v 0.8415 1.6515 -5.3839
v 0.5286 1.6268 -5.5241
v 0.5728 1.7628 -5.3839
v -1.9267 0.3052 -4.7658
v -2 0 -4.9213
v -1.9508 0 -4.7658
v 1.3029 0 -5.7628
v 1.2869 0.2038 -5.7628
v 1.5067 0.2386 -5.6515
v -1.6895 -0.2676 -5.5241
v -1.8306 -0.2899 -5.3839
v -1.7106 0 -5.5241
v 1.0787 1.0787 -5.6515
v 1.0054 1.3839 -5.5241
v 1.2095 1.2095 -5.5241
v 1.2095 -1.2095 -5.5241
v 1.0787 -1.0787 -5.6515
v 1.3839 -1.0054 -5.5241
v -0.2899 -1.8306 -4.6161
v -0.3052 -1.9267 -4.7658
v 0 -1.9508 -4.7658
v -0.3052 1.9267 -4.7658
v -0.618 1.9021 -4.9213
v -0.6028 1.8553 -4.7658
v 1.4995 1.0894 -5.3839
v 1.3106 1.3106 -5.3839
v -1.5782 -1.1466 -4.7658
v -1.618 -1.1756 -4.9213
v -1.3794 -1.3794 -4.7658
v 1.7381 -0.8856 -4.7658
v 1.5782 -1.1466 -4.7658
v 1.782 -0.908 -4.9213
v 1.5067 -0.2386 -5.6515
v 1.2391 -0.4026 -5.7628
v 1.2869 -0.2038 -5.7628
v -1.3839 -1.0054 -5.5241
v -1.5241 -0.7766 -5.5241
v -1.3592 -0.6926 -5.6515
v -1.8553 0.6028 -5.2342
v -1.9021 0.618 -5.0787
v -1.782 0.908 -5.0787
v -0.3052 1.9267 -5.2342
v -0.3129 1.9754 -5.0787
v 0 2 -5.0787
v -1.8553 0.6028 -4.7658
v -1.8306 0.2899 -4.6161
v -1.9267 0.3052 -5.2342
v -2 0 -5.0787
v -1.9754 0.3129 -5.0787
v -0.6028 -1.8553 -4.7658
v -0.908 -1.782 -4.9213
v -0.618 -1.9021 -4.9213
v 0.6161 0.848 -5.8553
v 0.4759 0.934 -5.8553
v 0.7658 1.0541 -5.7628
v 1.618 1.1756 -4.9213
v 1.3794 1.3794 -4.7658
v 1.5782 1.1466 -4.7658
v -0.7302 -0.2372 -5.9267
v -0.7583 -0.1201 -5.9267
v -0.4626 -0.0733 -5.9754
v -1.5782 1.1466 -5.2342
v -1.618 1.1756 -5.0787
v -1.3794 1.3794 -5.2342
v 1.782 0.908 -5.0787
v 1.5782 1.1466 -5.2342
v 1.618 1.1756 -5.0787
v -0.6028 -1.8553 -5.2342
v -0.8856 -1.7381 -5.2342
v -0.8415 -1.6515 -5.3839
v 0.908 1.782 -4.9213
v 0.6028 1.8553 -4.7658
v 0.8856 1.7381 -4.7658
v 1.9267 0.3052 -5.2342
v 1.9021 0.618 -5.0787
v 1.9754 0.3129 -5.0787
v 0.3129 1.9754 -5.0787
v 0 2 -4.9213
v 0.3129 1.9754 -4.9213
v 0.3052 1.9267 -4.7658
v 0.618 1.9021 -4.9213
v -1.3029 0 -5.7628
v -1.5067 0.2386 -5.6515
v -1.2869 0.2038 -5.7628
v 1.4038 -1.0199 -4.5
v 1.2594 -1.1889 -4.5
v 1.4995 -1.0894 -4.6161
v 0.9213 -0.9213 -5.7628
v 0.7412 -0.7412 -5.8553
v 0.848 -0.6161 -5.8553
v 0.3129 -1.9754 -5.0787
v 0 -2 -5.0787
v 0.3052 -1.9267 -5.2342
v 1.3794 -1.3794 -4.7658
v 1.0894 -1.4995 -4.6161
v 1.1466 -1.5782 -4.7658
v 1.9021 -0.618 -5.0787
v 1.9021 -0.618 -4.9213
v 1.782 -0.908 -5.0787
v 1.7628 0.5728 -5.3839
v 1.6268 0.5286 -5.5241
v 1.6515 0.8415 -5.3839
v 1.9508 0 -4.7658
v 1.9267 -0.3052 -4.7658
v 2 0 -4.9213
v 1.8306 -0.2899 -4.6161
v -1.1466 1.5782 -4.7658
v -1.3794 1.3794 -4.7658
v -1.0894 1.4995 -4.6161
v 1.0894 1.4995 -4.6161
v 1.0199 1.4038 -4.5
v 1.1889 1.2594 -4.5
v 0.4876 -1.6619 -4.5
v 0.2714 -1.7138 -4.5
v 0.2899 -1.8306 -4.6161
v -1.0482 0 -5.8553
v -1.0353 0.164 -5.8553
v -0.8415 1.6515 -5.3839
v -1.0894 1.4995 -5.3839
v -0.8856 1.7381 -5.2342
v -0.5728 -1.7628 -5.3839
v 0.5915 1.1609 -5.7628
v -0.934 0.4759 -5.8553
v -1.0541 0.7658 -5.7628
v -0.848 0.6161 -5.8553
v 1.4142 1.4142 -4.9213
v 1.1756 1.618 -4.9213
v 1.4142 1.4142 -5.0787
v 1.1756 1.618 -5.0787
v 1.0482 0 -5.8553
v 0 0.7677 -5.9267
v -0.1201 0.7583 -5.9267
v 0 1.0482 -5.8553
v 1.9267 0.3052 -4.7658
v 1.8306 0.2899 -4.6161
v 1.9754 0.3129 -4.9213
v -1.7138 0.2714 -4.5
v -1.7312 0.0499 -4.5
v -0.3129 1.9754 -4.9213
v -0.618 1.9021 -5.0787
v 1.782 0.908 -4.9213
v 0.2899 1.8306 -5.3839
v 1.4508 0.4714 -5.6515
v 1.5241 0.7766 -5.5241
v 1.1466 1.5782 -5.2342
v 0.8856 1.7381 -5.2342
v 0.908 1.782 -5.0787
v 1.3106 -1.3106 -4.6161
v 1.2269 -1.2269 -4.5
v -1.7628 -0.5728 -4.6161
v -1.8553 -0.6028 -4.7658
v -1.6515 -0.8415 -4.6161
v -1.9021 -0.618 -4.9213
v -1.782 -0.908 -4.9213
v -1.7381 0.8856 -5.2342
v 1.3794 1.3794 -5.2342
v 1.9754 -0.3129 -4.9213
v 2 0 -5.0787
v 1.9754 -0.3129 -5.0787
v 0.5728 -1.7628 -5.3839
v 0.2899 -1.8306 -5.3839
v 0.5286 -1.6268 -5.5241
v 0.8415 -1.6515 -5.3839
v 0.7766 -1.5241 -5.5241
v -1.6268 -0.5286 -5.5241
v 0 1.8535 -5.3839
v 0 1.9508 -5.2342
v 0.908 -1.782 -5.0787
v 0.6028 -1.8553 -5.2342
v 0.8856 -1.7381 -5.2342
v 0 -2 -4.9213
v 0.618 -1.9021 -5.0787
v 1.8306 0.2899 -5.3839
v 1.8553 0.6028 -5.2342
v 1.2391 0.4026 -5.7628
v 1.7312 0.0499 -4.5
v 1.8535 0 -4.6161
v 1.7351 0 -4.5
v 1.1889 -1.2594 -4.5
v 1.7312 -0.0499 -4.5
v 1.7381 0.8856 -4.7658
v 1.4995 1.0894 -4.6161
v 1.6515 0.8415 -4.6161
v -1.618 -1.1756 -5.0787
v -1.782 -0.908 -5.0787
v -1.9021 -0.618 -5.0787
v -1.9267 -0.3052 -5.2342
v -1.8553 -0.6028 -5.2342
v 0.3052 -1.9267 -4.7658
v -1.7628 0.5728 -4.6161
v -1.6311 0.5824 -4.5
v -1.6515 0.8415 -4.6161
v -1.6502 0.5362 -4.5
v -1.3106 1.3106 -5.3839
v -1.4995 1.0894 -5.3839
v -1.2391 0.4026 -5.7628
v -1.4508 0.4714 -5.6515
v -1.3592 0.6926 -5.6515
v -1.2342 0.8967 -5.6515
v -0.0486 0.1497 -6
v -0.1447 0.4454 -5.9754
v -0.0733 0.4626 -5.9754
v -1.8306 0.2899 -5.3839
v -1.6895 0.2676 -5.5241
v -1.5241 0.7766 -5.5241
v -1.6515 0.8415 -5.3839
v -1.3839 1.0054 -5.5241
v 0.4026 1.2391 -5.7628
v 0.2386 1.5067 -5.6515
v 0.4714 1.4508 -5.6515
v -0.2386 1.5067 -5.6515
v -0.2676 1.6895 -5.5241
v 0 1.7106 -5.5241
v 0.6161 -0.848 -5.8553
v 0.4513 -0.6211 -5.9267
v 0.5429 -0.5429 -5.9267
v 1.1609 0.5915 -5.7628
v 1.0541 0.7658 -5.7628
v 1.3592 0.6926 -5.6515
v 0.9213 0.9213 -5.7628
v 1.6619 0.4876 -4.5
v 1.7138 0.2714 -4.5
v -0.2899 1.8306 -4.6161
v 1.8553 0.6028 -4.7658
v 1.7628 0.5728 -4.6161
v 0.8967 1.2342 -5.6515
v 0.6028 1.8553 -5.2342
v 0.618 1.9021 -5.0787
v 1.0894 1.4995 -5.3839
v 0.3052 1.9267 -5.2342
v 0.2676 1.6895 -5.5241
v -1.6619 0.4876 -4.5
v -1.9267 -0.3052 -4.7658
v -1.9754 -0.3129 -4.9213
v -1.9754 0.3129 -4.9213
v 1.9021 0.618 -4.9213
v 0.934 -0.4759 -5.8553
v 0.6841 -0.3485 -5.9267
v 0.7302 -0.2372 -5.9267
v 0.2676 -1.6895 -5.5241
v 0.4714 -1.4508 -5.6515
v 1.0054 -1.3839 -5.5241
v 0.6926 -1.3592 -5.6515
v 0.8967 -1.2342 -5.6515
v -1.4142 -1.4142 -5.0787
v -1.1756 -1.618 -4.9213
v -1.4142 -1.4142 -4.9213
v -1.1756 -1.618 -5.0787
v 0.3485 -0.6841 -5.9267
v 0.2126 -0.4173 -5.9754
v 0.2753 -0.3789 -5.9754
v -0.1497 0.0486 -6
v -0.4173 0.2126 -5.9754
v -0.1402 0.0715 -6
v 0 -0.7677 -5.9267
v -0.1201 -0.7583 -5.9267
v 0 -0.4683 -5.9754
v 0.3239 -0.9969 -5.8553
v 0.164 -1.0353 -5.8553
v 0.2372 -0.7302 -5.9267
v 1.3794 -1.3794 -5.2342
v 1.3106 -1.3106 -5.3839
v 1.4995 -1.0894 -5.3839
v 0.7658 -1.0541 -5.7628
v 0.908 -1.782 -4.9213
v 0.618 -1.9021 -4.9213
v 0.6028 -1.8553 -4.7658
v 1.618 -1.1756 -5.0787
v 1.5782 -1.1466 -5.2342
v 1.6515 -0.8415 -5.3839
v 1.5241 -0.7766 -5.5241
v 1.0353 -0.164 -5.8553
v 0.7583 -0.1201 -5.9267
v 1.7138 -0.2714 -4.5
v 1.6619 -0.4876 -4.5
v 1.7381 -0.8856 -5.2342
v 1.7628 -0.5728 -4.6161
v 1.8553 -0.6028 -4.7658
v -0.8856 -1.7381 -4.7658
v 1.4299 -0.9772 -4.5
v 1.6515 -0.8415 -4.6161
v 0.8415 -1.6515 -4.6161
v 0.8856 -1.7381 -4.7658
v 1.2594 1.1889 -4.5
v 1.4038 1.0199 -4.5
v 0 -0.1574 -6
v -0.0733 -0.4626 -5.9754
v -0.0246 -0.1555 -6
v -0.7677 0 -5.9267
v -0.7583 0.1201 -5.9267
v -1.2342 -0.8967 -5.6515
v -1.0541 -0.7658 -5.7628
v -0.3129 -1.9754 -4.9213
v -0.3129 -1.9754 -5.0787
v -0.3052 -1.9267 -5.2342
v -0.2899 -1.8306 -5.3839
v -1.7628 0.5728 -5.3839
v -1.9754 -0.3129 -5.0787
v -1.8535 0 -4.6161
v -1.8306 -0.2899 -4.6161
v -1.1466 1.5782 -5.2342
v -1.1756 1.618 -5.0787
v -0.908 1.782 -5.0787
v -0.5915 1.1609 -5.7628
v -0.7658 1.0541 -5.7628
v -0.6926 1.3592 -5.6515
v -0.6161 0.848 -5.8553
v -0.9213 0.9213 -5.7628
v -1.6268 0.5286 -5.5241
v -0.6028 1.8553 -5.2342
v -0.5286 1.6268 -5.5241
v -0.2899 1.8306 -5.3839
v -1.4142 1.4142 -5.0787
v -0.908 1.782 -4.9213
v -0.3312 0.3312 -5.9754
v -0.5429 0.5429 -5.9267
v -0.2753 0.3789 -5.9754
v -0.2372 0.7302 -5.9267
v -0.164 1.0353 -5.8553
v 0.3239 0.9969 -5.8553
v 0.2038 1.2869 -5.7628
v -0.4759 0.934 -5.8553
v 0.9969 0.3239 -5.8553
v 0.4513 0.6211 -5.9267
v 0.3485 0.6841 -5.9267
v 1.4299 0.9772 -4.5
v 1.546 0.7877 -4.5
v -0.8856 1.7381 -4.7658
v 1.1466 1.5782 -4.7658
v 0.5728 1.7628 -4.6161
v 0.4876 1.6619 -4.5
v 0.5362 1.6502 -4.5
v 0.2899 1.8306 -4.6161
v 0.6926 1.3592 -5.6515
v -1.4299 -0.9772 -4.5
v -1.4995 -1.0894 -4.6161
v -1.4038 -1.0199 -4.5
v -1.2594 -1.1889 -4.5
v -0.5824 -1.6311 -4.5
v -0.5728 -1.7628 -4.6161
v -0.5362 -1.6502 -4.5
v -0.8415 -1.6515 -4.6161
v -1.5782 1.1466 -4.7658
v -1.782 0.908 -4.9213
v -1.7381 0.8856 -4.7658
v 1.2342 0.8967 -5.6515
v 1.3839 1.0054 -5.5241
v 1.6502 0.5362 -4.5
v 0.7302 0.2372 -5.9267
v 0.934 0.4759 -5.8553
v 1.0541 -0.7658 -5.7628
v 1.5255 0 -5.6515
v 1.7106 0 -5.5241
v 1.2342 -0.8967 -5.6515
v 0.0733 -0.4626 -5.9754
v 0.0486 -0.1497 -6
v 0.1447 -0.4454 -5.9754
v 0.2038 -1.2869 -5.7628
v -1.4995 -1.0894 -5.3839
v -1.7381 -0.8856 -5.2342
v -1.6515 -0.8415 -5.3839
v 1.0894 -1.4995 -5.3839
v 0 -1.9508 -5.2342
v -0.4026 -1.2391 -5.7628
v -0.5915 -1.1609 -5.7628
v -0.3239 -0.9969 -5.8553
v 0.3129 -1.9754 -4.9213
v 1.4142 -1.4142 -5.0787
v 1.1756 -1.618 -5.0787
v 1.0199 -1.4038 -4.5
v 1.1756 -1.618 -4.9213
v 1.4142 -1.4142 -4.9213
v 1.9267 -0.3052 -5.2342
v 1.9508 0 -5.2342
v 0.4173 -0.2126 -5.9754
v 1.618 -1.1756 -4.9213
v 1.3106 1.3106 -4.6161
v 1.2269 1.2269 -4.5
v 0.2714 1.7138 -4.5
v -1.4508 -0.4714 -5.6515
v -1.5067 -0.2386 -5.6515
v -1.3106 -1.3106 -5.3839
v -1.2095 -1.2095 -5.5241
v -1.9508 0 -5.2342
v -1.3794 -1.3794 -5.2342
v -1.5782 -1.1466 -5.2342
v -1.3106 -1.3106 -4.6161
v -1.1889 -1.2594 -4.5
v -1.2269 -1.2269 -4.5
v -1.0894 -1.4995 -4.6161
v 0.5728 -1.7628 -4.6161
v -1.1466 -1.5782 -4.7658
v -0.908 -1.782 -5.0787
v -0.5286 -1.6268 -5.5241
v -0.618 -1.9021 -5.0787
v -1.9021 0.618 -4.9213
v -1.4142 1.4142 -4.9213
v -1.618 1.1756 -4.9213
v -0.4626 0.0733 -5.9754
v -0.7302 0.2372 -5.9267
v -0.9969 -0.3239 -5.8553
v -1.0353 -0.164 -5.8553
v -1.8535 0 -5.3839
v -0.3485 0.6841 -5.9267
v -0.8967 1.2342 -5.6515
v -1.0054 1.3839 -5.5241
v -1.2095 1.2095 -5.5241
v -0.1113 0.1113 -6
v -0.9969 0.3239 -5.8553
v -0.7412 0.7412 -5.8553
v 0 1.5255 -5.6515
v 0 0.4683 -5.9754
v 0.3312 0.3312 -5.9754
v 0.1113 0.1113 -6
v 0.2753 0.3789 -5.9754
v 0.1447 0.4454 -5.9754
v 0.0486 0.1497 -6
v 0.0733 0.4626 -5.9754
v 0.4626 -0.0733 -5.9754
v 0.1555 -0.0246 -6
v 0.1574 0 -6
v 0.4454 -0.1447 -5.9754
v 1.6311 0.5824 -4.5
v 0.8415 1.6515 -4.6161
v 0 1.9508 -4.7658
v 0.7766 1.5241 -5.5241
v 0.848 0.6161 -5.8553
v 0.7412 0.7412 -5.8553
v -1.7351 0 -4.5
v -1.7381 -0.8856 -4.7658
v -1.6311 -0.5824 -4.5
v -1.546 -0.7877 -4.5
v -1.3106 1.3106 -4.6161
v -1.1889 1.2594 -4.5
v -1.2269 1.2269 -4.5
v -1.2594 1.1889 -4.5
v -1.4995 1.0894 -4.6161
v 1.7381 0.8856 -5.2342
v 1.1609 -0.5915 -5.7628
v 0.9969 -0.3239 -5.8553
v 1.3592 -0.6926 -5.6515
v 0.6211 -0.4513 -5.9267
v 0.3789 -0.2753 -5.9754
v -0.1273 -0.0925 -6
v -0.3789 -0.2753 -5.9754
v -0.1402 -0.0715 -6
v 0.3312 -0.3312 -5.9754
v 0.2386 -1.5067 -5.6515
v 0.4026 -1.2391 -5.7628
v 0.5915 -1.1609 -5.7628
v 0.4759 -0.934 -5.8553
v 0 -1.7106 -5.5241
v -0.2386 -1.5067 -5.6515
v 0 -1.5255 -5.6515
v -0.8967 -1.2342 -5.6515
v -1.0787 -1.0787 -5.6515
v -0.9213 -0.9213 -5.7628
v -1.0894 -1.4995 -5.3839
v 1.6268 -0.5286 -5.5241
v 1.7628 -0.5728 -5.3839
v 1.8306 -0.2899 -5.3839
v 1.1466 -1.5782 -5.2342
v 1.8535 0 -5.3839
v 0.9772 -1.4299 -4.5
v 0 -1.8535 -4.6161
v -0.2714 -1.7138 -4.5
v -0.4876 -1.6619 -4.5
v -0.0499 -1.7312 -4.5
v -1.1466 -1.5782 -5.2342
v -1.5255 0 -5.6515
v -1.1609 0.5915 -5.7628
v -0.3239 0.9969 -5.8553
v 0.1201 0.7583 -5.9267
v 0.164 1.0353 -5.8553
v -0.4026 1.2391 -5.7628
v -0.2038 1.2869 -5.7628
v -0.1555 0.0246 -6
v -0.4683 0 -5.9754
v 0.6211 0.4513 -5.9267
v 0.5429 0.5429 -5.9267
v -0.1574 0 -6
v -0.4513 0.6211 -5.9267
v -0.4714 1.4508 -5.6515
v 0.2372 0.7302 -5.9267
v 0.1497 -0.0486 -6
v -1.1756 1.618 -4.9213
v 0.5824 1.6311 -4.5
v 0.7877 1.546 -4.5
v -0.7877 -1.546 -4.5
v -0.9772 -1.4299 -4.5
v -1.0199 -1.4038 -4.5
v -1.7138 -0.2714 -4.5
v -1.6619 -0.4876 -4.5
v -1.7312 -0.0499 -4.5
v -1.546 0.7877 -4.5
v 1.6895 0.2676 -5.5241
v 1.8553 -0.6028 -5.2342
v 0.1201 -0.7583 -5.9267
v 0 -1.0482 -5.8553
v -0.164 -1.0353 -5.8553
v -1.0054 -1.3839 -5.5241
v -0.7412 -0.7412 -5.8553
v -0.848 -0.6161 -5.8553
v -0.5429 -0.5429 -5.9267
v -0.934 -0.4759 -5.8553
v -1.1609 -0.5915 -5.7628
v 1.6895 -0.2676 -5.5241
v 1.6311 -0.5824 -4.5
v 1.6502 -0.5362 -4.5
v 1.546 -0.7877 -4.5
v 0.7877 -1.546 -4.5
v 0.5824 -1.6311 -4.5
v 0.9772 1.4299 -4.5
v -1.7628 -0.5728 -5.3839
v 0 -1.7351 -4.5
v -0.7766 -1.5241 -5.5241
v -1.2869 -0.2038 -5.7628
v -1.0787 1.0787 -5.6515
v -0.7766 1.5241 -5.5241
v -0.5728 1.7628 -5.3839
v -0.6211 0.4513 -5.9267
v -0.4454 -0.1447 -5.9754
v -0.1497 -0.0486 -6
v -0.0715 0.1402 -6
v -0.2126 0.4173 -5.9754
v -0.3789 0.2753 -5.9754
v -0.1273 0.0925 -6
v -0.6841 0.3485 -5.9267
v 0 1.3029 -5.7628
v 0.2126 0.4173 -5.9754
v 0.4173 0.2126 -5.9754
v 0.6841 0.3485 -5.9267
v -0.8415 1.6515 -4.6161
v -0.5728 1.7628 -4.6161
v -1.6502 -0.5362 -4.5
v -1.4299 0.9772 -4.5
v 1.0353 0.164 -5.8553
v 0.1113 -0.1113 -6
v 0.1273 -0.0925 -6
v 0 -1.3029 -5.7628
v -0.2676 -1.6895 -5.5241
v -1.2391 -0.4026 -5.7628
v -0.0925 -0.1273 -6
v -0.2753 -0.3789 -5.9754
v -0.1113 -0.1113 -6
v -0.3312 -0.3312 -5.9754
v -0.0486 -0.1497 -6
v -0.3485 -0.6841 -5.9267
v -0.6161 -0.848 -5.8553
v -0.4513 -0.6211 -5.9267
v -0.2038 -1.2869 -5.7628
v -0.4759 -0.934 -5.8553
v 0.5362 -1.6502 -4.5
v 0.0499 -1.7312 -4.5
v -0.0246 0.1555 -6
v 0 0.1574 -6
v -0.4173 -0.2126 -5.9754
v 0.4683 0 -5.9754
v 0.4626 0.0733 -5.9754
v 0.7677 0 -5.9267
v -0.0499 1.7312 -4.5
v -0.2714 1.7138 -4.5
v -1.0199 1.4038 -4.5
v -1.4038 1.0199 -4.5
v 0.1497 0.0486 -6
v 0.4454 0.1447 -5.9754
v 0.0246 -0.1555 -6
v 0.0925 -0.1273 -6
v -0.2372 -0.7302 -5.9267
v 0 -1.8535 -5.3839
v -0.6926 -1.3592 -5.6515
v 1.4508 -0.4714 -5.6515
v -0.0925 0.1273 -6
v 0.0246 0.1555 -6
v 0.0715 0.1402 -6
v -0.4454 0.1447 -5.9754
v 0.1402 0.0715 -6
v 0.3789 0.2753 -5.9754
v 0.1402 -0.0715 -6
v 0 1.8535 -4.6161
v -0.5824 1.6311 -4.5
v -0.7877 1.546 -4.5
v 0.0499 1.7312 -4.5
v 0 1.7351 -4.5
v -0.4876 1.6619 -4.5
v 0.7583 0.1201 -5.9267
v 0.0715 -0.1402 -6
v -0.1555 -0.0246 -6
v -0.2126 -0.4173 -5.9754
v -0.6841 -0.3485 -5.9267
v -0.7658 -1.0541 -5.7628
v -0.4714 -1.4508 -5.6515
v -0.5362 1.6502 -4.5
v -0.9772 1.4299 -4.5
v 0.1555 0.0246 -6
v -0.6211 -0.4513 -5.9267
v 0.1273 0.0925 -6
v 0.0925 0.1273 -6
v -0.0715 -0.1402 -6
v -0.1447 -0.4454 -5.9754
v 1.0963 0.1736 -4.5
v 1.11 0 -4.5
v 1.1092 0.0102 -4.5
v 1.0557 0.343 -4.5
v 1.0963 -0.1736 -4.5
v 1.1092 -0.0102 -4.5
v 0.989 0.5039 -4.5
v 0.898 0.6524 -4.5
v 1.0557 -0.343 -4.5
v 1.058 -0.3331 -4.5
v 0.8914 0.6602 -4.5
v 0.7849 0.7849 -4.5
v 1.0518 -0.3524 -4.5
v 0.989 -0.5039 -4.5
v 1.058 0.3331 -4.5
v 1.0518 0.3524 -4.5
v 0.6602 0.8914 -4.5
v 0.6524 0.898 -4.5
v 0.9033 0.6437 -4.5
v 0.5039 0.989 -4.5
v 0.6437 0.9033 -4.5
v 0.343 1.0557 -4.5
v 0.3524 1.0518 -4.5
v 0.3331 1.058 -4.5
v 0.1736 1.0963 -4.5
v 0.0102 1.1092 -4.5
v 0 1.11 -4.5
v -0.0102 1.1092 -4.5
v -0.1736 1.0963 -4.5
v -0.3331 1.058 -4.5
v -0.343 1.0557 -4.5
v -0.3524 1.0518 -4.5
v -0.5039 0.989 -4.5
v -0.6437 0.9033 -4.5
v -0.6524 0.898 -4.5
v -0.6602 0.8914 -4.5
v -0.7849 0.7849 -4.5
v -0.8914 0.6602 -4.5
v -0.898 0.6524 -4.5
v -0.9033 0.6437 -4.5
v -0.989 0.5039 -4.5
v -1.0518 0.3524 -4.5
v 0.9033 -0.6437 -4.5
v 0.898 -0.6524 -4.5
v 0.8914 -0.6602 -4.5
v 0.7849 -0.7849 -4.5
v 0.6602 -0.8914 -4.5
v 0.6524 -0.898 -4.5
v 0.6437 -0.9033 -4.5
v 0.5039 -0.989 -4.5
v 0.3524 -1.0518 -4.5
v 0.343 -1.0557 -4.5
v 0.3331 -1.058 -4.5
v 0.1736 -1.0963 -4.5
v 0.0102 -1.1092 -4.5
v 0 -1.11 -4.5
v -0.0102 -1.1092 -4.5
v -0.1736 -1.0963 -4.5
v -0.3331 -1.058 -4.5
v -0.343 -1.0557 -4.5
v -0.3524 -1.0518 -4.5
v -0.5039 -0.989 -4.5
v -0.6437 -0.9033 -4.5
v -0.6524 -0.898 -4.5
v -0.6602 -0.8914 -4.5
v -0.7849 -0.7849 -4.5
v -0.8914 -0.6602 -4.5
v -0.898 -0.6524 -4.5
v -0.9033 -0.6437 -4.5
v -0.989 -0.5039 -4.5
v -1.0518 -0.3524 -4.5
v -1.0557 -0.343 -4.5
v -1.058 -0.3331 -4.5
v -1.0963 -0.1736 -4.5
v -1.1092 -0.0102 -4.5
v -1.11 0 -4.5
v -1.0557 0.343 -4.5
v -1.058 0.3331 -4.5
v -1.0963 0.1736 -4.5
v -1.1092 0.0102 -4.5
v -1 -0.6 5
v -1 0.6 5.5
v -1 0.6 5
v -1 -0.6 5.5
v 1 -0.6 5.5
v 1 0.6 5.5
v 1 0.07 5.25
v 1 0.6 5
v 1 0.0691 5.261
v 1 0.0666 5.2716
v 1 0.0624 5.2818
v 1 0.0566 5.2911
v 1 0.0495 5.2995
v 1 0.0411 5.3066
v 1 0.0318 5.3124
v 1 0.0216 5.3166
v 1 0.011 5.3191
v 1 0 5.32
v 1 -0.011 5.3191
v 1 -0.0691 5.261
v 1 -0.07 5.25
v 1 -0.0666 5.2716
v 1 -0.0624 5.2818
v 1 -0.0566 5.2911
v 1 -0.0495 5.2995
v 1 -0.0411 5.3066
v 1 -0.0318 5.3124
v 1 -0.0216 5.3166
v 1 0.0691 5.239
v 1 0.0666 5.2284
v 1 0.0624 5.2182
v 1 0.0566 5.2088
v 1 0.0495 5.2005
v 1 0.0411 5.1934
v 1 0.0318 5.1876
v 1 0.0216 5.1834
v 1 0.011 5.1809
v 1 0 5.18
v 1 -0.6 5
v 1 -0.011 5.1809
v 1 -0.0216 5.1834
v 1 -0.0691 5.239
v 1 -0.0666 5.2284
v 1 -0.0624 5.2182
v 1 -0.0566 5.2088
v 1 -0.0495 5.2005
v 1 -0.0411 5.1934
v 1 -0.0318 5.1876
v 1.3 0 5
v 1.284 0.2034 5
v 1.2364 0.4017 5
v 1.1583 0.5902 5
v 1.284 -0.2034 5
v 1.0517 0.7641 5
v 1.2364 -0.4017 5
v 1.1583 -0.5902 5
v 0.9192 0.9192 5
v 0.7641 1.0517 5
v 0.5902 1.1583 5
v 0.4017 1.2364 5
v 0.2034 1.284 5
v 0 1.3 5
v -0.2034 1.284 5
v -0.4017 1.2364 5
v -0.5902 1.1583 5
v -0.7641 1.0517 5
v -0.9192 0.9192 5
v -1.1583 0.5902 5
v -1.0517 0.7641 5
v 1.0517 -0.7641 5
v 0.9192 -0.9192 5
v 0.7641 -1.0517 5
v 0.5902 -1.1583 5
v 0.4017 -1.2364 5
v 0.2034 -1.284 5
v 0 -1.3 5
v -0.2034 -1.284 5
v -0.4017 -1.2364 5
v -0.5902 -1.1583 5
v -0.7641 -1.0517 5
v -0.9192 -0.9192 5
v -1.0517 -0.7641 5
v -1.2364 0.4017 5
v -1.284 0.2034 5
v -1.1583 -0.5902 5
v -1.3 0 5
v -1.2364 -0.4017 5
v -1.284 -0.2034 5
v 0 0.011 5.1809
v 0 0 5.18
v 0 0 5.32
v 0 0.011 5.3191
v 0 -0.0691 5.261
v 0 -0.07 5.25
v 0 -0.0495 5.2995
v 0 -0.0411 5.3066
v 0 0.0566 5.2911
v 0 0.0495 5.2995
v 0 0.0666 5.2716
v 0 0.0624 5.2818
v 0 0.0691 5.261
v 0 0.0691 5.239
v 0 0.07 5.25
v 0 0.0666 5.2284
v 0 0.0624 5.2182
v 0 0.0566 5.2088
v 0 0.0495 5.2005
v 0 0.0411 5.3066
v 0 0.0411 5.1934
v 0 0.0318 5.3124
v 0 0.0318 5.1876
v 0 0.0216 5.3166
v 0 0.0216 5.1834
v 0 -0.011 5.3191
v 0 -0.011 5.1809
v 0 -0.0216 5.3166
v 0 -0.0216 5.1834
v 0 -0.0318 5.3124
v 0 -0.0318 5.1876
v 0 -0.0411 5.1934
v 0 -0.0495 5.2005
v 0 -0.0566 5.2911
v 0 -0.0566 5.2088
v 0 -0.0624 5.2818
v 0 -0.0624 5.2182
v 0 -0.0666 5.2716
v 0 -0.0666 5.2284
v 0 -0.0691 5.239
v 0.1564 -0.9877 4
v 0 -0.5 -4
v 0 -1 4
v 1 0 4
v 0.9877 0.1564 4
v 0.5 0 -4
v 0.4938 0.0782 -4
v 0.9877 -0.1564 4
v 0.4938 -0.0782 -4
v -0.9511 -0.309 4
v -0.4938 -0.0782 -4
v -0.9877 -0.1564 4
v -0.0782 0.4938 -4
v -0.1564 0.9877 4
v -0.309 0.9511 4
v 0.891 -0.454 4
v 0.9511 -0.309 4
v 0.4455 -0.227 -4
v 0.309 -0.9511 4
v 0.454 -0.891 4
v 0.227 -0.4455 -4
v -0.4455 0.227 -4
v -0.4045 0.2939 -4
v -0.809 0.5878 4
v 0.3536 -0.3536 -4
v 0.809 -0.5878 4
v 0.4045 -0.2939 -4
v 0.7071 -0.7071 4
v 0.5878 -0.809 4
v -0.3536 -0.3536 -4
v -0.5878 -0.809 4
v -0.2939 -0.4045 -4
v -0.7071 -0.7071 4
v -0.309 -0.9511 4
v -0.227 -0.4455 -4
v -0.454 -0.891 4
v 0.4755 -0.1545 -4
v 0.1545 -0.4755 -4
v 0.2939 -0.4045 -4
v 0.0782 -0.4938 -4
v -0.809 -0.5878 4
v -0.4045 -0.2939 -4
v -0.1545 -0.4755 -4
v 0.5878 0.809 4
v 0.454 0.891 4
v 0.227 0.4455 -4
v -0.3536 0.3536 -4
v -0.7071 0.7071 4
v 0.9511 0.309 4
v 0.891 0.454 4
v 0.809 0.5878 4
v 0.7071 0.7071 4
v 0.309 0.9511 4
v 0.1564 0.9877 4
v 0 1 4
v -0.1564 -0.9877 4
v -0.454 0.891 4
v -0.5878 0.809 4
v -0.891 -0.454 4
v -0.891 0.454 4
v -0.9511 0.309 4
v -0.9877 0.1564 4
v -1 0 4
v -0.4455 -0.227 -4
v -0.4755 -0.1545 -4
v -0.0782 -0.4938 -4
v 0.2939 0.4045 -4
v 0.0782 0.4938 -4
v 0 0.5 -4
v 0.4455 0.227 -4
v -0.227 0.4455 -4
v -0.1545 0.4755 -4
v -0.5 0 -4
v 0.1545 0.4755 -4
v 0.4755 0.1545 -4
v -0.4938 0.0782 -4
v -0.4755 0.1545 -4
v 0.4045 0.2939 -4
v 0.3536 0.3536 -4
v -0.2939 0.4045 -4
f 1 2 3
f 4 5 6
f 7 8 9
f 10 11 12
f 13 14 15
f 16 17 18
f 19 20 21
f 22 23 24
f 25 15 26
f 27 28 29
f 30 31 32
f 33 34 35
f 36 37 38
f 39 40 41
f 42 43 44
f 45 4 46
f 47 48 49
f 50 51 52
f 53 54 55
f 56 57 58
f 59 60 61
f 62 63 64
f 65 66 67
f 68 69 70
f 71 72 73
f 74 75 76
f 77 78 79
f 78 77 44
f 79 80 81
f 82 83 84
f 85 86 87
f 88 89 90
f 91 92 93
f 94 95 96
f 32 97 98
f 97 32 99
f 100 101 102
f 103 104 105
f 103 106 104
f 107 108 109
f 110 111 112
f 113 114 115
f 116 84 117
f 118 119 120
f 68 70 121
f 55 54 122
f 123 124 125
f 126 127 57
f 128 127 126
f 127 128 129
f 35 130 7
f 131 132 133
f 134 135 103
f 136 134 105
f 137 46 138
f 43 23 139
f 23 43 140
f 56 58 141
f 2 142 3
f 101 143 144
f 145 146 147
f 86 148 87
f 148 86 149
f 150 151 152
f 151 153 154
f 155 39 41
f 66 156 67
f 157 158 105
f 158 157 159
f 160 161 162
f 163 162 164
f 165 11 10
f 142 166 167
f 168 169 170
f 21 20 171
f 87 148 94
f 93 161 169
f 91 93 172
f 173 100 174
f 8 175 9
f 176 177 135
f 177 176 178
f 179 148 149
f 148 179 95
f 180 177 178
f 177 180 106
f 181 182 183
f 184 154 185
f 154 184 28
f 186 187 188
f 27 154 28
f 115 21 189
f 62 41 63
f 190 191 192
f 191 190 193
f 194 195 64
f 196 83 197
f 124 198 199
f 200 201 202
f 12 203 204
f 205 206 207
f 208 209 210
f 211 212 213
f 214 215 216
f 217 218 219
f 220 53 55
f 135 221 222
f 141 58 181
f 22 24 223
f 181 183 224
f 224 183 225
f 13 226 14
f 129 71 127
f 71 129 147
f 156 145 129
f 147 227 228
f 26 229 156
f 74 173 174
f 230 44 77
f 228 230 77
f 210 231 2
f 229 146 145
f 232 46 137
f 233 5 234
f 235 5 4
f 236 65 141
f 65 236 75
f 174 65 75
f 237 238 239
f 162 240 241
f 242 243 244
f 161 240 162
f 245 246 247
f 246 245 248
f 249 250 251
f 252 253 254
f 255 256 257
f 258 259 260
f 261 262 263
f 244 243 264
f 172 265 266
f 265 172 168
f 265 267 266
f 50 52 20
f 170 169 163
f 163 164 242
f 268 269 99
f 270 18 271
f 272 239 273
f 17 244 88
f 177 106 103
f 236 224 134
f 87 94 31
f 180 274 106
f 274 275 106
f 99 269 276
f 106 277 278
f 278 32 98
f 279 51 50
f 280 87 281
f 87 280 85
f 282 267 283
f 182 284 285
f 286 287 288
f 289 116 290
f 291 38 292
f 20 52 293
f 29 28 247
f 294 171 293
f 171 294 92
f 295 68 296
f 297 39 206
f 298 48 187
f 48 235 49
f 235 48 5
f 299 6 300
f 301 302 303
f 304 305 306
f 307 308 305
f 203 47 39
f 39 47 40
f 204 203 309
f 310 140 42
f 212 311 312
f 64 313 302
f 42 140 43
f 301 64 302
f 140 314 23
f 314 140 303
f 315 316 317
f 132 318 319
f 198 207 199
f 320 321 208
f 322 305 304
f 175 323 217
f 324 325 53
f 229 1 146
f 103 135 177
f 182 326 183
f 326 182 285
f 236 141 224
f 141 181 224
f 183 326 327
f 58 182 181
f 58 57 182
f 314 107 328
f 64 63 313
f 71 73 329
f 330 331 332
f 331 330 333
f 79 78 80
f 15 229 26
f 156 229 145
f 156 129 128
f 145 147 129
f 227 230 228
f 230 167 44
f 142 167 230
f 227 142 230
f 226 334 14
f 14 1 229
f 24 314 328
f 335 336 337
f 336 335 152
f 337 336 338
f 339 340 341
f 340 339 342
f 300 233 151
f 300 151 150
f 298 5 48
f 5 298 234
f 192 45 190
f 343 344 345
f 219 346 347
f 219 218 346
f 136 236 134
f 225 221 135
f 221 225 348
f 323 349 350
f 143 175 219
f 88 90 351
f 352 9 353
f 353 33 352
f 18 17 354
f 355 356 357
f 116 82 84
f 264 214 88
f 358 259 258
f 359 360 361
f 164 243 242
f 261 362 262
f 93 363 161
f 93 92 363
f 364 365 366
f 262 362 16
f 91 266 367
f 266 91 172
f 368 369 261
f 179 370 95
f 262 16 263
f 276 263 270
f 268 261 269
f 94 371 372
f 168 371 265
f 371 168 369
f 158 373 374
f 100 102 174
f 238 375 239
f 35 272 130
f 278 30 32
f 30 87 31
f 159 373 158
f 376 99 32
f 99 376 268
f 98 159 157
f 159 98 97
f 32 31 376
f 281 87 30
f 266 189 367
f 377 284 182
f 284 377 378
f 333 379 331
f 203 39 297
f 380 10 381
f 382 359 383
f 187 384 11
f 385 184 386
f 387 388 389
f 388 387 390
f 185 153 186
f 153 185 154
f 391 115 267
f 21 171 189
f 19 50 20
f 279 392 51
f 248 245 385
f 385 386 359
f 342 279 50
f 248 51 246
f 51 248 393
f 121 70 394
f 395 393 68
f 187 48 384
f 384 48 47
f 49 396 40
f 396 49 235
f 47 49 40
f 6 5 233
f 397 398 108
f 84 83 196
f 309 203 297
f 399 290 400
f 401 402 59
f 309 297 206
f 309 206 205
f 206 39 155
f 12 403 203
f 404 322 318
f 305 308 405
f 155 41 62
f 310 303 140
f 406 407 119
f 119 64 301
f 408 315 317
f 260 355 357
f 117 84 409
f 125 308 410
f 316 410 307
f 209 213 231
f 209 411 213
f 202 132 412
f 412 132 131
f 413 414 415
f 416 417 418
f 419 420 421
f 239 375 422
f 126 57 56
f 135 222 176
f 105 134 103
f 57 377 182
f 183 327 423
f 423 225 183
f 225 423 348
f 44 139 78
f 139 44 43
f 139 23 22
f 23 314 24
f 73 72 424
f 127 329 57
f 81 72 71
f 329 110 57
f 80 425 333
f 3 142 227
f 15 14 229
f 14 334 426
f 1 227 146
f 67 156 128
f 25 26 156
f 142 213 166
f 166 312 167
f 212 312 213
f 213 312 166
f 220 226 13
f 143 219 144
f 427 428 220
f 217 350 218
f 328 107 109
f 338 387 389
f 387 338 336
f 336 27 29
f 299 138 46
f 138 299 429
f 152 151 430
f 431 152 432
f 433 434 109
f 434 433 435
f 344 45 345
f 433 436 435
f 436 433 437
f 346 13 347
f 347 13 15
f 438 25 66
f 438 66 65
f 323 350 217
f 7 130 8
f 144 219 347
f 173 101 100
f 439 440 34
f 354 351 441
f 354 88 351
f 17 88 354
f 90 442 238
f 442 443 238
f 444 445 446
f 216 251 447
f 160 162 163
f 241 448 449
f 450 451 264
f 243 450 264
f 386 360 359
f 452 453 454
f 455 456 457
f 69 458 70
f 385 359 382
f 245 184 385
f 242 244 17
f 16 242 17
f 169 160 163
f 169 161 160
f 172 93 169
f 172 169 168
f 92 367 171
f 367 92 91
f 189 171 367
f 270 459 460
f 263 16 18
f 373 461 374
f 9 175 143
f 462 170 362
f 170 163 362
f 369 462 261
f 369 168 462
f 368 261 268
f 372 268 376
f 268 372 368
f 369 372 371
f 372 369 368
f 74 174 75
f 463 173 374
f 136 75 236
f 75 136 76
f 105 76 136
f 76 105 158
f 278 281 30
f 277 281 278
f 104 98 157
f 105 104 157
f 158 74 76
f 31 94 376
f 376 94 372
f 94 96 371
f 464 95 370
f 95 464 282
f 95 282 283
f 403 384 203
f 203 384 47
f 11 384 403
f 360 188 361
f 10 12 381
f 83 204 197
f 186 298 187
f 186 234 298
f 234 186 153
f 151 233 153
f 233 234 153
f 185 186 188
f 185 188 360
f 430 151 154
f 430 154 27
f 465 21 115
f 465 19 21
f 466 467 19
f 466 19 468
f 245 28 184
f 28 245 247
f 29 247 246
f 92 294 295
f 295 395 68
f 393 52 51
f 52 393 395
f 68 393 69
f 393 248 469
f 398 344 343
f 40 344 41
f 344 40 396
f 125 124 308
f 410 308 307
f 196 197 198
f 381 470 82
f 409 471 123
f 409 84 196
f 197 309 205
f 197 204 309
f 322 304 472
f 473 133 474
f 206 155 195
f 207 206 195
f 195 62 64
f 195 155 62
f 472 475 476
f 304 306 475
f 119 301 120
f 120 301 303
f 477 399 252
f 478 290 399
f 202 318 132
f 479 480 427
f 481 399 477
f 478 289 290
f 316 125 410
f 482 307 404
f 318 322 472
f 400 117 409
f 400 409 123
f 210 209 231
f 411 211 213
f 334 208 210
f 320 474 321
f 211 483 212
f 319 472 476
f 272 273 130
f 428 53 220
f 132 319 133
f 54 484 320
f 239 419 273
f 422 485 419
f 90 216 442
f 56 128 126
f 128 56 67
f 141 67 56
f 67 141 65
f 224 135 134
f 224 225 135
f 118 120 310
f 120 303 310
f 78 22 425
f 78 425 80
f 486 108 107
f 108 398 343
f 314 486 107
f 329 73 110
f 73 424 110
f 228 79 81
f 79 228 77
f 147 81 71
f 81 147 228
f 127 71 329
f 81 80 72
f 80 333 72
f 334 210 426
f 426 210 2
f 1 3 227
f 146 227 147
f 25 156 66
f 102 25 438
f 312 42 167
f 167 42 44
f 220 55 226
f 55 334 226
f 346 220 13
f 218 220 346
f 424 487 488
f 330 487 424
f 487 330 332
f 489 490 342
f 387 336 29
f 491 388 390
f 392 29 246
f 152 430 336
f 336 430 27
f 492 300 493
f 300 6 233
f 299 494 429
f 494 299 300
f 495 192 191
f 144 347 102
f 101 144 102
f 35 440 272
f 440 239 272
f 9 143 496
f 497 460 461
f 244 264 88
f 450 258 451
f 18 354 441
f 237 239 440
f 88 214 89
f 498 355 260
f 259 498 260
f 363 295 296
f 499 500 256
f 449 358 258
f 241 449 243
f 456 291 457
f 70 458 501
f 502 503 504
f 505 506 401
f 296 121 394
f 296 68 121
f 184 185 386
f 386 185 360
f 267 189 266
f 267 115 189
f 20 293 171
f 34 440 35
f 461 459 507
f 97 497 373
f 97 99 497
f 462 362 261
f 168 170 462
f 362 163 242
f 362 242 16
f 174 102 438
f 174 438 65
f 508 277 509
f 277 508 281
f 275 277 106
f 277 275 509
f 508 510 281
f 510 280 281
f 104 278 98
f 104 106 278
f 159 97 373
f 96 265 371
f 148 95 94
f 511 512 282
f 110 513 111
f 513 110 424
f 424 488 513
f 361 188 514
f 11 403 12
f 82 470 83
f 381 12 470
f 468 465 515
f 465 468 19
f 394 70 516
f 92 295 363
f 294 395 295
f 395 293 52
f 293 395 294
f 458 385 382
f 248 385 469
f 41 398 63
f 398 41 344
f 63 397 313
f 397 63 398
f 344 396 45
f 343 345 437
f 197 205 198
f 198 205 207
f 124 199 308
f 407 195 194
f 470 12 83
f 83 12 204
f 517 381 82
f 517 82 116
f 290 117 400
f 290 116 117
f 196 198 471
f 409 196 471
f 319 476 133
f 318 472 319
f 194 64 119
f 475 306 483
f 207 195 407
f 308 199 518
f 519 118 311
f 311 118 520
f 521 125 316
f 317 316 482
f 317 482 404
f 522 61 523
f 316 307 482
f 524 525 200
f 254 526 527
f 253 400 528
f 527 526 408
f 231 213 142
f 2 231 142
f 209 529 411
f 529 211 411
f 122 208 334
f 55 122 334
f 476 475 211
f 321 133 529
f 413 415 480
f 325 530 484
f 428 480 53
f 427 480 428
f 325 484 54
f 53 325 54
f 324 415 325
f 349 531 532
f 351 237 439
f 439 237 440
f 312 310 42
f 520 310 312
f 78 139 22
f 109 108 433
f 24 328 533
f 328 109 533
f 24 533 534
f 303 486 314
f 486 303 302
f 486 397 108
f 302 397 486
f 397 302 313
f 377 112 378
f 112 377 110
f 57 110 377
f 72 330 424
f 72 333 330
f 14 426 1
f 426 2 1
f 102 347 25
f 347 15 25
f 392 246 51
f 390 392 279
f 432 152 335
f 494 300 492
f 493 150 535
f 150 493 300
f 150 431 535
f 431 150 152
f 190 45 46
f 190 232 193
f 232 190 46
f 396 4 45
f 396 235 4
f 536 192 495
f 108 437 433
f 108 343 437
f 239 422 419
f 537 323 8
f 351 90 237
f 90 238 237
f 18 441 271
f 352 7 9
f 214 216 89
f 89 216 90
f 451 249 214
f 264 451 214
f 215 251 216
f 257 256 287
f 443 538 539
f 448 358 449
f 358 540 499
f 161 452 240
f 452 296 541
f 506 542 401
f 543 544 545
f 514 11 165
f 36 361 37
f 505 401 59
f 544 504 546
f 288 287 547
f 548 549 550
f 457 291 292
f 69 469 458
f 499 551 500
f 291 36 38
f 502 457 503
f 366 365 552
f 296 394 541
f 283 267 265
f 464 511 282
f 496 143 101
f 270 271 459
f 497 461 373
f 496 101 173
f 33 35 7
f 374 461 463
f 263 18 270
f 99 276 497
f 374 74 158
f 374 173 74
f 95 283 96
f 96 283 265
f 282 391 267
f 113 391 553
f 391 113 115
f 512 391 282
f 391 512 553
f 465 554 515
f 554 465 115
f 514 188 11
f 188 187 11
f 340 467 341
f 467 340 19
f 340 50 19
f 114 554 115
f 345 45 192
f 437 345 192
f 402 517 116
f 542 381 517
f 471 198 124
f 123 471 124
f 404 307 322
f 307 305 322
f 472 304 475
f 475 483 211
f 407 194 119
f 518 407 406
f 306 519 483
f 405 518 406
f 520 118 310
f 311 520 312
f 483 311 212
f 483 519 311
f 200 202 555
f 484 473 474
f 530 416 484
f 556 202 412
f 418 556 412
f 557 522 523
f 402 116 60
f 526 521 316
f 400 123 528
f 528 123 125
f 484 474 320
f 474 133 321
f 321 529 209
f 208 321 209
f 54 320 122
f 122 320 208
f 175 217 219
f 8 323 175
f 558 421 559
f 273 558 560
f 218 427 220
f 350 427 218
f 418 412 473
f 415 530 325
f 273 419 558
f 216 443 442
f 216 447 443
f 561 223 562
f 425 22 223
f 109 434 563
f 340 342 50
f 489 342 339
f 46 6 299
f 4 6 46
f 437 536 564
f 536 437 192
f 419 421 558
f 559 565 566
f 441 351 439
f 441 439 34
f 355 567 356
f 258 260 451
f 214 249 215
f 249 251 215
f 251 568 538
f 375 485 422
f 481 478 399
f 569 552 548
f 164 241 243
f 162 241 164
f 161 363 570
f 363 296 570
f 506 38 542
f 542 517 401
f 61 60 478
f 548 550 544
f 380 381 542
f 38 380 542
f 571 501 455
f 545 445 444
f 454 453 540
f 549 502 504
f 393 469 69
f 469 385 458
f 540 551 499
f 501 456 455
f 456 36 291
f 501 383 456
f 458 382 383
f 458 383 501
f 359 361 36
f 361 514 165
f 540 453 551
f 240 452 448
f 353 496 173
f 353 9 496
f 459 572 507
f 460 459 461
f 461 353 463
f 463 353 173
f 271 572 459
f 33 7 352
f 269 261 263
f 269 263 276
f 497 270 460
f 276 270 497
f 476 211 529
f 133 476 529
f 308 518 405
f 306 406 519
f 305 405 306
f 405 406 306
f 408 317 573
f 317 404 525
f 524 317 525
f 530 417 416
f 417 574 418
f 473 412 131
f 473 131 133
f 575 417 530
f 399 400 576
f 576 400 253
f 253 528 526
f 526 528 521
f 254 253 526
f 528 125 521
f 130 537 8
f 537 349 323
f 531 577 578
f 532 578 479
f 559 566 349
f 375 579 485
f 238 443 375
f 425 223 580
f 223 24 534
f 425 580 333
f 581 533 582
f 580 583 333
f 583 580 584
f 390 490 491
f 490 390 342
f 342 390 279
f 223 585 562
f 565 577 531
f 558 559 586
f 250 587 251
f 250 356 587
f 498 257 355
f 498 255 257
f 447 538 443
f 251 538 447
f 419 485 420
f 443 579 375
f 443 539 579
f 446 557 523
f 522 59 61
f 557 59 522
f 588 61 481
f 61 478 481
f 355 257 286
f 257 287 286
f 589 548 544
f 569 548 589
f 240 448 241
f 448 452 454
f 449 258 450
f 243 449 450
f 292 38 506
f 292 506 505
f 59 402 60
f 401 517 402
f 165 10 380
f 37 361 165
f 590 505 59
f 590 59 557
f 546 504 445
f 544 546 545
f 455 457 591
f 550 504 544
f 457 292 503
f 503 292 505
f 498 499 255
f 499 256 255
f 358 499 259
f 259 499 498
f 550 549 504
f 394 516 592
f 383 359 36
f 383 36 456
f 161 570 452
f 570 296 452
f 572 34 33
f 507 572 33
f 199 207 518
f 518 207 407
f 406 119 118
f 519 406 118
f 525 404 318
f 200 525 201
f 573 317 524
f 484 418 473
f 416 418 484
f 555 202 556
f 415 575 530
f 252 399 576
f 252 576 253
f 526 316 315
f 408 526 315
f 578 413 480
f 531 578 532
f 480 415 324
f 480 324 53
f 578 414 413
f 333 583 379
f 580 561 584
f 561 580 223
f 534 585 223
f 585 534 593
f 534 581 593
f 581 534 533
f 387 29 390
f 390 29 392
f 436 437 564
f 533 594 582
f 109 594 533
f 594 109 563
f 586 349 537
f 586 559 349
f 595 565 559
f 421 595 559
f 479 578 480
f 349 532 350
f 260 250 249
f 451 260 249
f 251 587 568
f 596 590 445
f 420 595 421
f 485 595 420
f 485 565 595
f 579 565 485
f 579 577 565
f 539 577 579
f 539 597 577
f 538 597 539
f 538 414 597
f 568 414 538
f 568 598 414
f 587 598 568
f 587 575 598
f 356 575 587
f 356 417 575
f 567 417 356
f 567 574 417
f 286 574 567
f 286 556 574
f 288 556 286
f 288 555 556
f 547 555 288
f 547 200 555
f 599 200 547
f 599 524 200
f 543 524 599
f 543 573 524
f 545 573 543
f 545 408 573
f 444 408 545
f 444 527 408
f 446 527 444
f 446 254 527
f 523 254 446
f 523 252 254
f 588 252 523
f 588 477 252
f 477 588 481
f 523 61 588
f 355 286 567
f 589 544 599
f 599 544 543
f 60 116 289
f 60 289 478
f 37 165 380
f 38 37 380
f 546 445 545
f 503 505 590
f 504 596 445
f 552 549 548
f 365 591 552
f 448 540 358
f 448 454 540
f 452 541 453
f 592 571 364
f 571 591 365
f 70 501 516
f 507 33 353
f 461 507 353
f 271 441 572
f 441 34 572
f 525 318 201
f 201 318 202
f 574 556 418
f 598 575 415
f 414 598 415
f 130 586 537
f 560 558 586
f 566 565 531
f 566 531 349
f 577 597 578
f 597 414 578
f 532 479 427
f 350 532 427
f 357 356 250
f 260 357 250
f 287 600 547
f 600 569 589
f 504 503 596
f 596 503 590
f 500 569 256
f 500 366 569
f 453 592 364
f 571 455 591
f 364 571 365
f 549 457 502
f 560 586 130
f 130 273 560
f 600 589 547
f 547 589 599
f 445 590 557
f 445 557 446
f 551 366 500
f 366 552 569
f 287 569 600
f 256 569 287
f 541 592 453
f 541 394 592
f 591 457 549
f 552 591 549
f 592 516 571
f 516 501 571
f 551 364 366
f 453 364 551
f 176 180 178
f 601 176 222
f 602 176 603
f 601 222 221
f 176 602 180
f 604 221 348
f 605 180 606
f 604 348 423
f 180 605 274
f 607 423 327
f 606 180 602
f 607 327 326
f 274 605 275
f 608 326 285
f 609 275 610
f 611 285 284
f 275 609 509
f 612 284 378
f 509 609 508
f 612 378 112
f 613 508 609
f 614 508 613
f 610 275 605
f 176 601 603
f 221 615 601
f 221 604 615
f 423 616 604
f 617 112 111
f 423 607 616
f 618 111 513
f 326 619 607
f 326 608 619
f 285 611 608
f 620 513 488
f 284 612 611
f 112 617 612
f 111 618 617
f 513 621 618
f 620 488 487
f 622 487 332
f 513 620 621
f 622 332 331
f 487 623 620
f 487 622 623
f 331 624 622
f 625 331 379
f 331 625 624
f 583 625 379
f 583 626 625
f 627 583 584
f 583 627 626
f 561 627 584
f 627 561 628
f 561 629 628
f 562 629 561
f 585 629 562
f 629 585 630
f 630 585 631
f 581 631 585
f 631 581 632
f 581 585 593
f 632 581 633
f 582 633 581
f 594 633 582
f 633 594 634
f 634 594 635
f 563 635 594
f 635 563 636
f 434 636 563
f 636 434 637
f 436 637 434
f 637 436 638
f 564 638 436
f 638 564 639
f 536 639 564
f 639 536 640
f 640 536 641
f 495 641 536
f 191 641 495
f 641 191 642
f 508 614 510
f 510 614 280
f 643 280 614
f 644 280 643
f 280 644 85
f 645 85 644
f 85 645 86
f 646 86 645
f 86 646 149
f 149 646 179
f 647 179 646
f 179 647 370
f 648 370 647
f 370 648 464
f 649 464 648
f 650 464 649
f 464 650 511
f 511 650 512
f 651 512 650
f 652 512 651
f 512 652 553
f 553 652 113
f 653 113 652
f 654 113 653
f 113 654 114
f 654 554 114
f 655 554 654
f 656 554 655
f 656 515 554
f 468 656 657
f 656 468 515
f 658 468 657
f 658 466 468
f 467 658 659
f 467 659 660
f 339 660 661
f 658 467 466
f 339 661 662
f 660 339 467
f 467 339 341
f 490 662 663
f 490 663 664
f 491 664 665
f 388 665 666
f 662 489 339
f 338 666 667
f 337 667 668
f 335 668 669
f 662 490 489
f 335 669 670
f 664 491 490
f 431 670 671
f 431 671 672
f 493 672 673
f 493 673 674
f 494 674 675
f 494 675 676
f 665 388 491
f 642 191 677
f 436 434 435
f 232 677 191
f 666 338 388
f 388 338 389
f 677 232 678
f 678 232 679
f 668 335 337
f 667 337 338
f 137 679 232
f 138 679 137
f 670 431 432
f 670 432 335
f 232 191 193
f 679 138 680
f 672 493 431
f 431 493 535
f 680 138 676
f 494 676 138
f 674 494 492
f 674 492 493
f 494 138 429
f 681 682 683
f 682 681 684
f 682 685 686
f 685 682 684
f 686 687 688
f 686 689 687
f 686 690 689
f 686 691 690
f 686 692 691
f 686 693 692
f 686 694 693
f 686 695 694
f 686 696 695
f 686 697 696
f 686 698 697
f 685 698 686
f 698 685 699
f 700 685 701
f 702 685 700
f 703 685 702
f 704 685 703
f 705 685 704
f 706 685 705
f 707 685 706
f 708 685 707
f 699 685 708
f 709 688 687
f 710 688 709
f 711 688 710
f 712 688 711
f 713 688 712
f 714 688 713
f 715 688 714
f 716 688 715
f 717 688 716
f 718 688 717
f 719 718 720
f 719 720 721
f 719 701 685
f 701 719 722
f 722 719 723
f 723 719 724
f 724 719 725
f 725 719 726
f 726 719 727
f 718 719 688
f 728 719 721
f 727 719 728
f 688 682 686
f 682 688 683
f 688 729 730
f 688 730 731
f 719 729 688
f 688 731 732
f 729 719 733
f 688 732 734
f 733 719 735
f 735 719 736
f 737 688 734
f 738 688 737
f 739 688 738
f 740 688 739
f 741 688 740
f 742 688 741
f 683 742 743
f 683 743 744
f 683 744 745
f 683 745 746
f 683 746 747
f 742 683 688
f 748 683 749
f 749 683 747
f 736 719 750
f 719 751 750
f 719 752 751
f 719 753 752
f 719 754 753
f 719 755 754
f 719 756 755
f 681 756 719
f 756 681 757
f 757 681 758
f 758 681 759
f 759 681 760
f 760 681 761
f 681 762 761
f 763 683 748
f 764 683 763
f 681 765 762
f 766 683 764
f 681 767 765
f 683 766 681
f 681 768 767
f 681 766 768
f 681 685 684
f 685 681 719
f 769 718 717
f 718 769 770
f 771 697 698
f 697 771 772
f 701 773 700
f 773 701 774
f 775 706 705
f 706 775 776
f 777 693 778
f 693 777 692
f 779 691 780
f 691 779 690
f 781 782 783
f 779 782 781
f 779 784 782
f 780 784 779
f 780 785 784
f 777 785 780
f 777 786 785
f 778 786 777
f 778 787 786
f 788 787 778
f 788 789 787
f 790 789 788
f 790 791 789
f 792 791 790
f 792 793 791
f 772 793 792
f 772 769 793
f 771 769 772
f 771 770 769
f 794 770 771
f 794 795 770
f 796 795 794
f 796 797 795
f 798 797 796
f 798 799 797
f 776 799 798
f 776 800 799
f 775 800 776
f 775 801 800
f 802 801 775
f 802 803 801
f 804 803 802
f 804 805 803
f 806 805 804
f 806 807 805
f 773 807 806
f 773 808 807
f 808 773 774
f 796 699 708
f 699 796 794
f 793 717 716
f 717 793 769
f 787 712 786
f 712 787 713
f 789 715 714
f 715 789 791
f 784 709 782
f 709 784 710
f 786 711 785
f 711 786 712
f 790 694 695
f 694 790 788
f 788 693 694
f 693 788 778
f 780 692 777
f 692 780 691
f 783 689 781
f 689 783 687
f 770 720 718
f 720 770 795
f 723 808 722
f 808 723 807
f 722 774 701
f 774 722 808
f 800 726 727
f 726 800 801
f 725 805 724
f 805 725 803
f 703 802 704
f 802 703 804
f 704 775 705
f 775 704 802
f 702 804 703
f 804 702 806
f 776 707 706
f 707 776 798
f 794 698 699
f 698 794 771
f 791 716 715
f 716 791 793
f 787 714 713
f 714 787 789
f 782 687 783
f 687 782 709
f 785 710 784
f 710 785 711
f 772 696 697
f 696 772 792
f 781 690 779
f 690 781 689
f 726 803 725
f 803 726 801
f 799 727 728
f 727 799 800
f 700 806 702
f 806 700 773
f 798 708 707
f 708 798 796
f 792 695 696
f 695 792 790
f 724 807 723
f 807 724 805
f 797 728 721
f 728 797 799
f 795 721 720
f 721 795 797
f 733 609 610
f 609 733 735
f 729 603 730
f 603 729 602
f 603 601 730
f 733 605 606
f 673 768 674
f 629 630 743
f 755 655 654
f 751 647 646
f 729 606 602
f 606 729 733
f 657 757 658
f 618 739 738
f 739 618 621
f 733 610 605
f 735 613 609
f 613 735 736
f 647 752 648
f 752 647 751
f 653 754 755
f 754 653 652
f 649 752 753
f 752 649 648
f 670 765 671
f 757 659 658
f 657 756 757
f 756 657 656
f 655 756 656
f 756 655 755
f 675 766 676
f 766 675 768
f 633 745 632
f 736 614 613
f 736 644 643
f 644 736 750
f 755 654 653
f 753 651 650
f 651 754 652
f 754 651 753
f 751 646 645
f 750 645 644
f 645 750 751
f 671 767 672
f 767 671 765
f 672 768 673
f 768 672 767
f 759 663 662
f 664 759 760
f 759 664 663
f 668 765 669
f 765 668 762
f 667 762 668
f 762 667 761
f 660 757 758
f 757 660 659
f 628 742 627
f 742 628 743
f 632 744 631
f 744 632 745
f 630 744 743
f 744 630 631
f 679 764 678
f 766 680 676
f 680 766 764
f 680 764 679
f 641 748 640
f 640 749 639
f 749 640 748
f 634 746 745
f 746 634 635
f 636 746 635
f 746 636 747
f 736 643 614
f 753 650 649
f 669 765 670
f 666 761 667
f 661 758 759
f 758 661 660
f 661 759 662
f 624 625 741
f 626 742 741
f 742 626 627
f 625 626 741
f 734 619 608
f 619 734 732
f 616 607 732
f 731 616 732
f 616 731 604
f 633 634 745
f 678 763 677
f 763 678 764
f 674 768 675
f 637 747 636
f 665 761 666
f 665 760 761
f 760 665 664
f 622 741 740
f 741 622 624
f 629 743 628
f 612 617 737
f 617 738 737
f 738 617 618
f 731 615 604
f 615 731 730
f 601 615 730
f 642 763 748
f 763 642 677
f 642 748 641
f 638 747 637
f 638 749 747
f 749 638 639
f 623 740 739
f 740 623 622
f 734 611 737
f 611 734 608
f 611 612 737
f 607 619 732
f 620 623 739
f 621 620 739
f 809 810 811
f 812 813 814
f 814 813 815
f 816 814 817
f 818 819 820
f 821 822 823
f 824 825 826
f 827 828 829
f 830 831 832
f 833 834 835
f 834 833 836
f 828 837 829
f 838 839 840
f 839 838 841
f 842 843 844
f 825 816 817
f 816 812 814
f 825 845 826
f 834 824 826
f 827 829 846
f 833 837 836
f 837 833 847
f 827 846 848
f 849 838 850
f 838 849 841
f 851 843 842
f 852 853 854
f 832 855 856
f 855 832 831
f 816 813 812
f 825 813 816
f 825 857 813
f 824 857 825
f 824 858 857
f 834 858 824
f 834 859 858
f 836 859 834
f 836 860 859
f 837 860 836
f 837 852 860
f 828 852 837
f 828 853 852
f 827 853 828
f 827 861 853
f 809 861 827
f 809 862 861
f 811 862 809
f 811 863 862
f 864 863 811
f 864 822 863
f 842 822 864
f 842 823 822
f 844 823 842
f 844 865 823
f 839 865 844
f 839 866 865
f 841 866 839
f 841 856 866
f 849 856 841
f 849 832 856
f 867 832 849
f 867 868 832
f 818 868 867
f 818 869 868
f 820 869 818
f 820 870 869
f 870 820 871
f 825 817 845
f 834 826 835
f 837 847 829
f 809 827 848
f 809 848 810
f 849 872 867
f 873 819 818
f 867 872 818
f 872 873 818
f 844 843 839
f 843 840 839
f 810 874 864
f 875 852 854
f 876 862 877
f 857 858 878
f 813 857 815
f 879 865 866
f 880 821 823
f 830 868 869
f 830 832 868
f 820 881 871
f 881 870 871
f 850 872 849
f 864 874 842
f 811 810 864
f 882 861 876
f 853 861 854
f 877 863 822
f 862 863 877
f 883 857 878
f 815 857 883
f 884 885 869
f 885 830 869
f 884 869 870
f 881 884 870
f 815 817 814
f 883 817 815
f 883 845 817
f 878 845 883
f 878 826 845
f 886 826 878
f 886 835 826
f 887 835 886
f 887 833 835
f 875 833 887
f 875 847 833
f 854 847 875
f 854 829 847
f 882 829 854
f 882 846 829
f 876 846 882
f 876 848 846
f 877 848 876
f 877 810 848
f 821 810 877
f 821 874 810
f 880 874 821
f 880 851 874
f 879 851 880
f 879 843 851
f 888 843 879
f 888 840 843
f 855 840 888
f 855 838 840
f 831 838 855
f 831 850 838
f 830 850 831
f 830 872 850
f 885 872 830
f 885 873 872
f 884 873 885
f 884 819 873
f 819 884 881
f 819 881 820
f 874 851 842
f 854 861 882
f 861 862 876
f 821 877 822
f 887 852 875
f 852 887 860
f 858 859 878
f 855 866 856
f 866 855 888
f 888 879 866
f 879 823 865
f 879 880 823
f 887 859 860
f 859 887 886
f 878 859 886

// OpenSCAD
difference() {
    union(){
        cylinder(h=10, r2=1.3, r1=1.1, center=true, $fn=40);
        translate([0,0,-5]) difference() {
            resize([4,4,2]) sphere(r=2, $fn=40);
            translate([-2,-2,0.5]) cube([4,4,1]);
        }
        difference() {
            translate([0,0,5.25]) cube([2,1.2,0.5], center=true);
            translate([0,0,5.25]) rotate([0,90,0]) cylinder(h=2, r=0.07, $fn=40);
        }
    }
    cylinder(h=8, r2=1, r1=0.5, center=true, $fn=40);
}
